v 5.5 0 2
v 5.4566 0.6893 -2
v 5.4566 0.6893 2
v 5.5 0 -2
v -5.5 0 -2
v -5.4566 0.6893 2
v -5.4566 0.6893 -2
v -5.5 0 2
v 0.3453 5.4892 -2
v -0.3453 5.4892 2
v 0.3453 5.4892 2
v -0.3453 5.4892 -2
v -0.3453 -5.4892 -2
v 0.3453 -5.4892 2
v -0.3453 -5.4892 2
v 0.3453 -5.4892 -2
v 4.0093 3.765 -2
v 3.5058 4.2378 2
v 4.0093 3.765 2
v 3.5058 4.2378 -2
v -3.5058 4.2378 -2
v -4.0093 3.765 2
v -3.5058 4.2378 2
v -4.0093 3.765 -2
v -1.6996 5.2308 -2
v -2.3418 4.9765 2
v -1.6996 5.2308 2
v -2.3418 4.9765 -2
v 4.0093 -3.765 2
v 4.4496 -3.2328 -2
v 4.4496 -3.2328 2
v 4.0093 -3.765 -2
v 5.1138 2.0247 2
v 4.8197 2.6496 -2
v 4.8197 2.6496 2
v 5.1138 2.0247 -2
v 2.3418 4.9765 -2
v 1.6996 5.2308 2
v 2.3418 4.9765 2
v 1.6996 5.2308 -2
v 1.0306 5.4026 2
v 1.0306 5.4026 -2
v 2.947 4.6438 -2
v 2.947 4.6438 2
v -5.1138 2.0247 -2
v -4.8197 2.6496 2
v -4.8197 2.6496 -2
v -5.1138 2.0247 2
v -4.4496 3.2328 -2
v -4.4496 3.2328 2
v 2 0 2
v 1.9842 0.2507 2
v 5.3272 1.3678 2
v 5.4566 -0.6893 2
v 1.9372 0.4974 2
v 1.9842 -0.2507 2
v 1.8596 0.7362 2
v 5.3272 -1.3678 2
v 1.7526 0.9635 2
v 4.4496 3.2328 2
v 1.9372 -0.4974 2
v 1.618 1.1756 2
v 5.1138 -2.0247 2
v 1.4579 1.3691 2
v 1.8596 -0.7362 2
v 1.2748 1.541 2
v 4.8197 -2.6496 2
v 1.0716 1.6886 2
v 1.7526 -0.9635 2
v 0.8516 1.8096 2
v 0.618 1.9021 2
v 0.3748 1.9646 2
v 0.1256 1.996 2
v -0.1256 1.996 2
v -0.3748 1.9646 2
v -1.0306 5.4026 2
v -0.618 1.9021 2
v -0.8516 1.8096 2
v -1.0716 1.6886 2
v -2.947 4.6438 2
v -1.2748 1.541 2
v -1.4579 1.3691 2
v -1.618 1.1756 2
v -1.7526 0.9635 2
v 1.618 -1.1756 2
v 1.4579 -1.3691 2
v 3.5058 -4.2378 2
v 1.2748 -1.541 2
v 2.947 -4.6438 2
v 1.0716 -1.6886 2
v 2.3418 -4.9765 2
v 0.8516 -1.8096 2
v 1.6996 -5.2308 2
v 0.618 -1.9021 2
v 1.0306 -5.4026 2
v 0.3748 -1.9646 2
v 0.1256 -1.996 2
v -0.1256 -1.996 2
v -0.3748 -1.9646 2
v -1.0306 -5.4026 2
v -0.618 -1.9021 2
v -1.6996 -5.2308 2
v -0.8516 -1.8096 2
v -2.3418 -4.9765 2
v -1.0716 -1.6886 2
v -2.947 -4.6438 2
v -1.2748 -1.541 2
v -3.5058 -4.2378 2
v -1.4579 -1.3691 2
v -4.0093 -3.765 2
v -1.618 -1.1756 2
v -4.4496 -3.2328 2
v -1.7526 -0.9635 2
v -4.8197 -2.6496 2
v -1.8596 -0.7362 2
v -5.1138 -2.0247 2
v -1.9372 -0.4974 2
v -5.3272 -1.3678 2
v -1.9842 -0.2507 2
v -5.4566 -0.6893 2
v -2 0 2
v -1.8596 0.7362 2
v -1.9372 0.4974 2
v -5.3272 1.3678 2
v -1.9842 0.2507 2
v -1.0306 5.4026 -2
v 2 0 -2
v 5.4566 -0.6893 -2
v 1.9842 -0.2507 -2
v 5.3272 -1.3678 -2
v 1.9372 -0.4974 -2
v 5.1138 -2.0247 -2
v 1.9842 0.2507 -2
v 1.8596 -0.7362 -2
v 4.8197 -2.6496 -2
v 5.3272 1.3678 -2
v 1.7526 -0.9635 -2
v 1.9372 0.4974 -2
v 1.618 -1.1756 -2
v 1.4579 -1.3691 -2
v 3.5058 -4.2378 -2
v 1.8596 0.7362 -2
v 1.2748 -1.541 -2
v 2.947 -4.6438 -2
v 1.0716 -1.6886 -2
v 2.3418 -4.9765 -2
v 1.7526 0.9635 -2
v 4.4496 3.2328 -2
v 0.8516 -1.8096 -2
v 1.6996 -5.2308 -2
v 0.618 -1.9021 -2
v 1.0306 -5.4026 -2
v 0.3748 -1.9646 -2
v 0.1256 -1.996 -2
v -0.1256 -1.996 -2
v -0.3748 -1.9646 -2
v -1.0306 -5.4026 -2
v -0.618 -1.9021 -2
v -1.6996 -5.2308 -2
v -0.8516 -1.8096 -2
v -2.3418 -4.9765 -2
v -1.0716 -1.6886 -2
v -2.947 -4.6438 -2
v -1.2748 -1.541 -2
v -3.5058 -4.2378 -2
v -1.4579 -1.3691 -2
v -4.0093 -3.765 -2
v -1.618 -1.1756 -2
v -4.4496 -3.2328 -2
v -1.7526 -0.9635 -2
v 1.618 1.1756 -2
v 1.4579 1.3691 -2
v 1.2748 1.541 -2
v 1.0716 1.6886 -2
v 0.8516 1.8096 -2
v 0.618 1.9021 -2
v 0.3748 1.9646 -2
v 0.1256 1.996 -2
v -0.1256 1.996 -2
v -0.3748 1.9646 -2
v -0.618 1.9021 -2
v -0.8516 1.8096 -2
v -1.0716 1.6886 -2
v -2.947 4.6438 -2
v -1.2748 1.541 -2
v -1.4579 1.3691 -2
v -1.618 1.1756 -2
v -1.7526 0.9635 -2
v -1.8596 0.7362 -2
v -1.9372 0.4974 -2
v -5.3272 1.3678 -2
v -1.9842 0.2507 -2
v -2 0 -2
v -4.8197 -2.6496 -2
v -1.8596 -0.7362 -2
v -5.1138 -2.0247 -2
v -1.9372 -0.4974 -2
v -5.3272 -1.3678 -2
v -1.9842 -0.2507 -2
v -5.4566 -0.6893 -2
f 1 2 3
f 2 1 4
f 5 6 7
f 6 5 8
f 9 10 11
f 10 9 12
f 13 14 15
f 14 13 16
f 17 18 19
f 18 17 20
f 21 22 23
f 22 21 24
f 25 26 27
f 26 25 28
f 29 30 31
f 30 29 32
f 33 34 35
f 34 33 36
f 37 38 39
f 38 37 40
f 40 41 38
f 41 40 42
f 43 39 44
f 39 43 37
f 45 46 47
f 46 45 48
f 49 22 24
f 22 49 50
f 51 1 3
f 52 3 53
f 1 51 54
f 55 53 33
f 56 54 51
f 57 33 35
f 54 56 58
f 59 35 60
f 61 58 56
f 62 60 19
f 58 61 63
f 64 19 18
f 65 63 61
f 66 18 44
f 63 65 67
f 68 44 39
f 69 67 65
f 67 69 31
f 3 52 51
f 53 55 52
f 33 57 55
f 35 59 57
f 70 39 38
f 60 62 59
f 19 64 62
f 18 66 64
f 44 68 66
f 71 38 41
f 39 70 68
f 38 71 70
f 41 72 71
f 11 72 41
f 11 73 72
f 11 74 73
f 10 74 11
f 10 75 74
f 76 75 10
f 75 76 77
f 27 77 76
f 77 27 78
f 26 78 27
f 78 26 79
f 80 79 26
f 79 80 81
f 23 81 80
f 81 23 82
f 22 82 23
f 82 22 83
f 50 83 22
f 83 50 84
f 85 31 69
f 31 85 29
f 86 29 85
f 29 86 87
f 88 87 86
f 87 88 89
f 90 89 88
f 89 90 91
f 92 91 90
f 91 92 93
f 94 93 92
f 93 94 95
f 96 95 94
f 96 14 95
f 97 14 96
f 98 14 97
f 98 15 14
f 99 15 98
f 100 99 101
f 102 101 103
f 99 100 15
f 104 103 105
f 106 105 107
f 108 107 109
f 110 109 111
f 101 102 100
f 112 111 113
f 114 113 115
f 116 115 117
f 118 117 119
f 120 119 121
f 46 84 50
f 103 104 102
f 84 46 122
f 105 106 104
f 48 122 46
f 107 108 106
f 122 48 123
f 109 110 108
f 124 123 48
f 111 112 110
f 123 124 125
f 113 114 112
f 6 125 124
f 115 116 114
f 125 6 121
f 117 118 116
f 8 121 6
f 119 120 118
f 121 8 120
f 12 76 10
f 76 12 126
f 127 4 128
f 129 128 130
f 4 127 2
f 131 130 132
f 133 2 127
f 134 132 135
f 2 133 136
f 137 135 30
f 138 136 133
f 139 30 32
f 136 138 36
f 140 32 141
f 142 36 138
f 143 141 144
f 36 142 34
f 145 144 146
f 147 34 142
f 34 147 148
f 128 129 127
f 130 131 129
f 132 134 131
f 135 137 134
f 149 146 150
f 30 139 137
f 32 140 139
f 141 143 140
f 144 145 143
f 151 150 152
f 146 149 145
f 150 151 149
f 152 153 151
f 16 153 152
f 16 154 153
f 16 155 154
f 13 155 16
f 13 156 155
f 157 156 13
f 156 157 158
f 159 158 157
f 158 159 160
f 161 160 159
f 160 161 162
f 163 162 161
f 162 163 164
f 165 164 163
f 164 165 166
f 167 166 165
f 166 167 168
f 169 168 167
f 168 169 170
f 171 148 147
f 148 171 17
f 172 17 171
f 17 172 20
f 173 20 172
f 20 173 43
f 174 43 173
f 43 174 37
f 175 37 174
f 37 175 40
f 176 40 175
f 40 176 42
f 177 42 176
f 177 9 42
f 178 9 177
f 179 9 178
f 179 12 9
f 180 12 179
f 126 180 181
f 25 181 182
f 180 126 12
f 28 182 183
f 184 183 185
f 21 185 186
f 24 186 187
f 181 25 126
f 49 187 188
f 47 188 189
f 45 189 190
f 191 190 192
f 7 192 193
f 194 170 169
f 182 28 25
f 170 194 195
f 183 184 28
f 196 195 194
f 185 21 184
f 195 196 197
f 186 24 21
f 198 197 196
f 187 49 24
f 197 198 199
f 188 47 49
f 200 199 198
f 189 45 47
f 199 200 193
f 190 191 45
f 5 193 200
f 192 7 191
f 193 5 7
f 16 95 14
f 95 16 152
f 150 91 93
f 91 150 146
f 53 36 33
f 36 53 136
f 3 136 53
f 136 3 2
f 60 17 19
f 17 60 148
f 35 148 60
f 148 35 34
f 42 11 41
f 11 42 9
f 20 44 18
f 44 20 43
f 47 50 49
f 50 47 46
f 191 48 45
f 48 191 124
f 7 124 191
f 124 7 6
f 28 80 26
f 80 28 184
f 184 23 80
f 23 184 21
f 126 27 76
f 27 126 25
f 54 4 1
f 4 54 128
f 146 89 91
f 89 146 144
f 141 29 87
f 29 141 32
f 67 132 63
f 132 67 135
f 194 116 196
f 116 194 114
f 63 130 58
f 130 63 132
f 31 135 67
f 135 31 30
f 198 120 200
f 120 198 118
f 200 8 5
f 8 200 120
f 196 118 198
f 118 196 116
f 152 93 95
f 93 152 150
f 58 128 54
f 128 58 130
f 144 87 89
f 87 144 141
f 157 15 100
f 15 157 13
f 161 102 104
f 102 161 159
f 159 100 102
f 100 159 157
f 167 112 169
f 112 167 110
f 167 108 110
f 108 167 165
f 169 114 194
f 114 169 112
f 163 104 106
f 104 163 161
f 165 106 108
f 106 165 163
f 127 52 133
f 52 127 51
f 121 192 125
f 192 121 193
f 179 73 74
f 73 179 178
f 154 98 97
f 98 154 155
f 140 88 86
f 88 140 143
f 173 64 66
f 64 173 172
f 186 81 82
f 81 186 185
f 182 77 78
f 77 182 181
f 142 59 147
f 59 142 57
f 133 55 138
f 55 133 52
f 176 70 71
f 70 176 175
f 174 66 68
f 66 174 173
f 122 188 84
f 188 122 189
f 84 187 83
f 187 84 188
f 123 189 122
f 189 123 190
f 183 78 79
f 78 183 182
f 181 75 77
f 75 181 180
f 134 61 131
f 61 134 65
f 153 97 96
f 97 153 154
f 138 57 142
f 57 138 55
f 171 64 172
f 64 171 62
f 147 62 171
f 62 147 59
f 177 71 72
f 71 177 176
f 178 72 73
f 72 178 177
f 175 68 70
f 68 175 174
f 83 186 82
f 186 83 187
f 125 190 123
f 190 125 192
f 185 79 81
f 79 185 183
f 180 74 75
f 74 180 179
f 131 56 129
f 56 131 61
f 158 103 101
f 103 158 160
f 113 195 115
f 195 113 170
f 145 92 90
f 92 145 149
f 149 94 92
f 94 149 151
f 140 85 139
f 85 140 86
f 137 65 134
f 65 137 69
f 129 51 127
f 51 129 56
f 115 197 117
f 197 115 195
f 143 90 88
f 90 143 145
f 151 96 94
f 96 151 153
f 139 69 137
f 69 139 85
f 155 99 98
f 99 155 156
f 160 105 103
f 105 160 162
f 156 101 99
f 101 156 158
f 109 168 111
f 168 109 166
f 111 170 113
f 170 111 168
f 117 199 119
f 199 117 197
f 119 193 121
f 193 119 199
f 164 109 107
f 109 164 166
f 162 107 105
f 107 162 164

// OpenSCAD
$fn = 50;


difference() {
	union() {
		translate(v = [0, 0, -2.0000000000]) {
			cylinder(h = 4, r = 5.5000000000);
		}
	}
	union() {
		translate(v = [0, 0, -100.0000000000]) {
			cylinder(h = 200, r = 2);
		}
	}
}
